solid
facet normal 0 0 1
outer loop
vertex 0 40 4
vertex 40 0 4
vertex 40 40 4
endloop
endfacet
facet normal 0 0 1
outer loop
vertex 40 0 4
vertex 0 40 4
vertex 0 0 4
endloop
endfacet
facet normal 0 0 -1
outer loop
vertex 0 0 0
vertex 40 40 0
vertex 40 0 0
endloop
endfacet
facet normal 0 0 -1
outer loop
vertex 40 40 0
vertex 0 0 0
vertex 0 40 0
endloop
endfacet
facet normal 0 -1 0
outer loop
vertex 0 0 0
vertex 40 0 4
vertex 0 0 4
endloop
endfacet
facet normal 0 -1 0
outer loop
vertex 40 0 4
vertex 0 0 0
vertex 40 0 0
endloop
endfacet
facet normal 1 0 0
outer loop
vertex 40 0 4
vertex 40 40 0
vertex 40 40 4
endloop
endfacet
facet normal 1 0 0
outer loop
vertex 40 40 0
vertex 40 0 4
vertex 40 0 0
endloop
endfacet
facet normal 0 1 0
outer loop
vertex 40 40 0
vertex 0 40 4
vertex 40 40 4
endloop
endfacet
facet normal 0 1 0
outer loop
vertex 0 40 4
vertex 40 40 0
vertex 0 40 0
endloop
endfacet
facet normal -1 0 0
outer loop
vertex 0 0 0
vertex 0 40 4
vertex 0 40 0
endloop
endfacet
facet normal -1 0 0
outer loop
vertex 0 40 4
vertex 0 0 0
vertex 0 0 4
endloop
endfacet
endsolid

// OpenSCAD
/* Warning, this is a very basic generator with a lot of approximation 
input data : [BBGA, E4C, 40x40x4.0mm, 1517, , A, C04-25529A]
generated by com.zoubworld.electronics.cad.model3d.Basic
Date : Sun Feb 15 10:50:49 CET 2026
*/

//body
color("black")
translate([0,0,0])
cube([40.0,40.0,4.0], center=false);
